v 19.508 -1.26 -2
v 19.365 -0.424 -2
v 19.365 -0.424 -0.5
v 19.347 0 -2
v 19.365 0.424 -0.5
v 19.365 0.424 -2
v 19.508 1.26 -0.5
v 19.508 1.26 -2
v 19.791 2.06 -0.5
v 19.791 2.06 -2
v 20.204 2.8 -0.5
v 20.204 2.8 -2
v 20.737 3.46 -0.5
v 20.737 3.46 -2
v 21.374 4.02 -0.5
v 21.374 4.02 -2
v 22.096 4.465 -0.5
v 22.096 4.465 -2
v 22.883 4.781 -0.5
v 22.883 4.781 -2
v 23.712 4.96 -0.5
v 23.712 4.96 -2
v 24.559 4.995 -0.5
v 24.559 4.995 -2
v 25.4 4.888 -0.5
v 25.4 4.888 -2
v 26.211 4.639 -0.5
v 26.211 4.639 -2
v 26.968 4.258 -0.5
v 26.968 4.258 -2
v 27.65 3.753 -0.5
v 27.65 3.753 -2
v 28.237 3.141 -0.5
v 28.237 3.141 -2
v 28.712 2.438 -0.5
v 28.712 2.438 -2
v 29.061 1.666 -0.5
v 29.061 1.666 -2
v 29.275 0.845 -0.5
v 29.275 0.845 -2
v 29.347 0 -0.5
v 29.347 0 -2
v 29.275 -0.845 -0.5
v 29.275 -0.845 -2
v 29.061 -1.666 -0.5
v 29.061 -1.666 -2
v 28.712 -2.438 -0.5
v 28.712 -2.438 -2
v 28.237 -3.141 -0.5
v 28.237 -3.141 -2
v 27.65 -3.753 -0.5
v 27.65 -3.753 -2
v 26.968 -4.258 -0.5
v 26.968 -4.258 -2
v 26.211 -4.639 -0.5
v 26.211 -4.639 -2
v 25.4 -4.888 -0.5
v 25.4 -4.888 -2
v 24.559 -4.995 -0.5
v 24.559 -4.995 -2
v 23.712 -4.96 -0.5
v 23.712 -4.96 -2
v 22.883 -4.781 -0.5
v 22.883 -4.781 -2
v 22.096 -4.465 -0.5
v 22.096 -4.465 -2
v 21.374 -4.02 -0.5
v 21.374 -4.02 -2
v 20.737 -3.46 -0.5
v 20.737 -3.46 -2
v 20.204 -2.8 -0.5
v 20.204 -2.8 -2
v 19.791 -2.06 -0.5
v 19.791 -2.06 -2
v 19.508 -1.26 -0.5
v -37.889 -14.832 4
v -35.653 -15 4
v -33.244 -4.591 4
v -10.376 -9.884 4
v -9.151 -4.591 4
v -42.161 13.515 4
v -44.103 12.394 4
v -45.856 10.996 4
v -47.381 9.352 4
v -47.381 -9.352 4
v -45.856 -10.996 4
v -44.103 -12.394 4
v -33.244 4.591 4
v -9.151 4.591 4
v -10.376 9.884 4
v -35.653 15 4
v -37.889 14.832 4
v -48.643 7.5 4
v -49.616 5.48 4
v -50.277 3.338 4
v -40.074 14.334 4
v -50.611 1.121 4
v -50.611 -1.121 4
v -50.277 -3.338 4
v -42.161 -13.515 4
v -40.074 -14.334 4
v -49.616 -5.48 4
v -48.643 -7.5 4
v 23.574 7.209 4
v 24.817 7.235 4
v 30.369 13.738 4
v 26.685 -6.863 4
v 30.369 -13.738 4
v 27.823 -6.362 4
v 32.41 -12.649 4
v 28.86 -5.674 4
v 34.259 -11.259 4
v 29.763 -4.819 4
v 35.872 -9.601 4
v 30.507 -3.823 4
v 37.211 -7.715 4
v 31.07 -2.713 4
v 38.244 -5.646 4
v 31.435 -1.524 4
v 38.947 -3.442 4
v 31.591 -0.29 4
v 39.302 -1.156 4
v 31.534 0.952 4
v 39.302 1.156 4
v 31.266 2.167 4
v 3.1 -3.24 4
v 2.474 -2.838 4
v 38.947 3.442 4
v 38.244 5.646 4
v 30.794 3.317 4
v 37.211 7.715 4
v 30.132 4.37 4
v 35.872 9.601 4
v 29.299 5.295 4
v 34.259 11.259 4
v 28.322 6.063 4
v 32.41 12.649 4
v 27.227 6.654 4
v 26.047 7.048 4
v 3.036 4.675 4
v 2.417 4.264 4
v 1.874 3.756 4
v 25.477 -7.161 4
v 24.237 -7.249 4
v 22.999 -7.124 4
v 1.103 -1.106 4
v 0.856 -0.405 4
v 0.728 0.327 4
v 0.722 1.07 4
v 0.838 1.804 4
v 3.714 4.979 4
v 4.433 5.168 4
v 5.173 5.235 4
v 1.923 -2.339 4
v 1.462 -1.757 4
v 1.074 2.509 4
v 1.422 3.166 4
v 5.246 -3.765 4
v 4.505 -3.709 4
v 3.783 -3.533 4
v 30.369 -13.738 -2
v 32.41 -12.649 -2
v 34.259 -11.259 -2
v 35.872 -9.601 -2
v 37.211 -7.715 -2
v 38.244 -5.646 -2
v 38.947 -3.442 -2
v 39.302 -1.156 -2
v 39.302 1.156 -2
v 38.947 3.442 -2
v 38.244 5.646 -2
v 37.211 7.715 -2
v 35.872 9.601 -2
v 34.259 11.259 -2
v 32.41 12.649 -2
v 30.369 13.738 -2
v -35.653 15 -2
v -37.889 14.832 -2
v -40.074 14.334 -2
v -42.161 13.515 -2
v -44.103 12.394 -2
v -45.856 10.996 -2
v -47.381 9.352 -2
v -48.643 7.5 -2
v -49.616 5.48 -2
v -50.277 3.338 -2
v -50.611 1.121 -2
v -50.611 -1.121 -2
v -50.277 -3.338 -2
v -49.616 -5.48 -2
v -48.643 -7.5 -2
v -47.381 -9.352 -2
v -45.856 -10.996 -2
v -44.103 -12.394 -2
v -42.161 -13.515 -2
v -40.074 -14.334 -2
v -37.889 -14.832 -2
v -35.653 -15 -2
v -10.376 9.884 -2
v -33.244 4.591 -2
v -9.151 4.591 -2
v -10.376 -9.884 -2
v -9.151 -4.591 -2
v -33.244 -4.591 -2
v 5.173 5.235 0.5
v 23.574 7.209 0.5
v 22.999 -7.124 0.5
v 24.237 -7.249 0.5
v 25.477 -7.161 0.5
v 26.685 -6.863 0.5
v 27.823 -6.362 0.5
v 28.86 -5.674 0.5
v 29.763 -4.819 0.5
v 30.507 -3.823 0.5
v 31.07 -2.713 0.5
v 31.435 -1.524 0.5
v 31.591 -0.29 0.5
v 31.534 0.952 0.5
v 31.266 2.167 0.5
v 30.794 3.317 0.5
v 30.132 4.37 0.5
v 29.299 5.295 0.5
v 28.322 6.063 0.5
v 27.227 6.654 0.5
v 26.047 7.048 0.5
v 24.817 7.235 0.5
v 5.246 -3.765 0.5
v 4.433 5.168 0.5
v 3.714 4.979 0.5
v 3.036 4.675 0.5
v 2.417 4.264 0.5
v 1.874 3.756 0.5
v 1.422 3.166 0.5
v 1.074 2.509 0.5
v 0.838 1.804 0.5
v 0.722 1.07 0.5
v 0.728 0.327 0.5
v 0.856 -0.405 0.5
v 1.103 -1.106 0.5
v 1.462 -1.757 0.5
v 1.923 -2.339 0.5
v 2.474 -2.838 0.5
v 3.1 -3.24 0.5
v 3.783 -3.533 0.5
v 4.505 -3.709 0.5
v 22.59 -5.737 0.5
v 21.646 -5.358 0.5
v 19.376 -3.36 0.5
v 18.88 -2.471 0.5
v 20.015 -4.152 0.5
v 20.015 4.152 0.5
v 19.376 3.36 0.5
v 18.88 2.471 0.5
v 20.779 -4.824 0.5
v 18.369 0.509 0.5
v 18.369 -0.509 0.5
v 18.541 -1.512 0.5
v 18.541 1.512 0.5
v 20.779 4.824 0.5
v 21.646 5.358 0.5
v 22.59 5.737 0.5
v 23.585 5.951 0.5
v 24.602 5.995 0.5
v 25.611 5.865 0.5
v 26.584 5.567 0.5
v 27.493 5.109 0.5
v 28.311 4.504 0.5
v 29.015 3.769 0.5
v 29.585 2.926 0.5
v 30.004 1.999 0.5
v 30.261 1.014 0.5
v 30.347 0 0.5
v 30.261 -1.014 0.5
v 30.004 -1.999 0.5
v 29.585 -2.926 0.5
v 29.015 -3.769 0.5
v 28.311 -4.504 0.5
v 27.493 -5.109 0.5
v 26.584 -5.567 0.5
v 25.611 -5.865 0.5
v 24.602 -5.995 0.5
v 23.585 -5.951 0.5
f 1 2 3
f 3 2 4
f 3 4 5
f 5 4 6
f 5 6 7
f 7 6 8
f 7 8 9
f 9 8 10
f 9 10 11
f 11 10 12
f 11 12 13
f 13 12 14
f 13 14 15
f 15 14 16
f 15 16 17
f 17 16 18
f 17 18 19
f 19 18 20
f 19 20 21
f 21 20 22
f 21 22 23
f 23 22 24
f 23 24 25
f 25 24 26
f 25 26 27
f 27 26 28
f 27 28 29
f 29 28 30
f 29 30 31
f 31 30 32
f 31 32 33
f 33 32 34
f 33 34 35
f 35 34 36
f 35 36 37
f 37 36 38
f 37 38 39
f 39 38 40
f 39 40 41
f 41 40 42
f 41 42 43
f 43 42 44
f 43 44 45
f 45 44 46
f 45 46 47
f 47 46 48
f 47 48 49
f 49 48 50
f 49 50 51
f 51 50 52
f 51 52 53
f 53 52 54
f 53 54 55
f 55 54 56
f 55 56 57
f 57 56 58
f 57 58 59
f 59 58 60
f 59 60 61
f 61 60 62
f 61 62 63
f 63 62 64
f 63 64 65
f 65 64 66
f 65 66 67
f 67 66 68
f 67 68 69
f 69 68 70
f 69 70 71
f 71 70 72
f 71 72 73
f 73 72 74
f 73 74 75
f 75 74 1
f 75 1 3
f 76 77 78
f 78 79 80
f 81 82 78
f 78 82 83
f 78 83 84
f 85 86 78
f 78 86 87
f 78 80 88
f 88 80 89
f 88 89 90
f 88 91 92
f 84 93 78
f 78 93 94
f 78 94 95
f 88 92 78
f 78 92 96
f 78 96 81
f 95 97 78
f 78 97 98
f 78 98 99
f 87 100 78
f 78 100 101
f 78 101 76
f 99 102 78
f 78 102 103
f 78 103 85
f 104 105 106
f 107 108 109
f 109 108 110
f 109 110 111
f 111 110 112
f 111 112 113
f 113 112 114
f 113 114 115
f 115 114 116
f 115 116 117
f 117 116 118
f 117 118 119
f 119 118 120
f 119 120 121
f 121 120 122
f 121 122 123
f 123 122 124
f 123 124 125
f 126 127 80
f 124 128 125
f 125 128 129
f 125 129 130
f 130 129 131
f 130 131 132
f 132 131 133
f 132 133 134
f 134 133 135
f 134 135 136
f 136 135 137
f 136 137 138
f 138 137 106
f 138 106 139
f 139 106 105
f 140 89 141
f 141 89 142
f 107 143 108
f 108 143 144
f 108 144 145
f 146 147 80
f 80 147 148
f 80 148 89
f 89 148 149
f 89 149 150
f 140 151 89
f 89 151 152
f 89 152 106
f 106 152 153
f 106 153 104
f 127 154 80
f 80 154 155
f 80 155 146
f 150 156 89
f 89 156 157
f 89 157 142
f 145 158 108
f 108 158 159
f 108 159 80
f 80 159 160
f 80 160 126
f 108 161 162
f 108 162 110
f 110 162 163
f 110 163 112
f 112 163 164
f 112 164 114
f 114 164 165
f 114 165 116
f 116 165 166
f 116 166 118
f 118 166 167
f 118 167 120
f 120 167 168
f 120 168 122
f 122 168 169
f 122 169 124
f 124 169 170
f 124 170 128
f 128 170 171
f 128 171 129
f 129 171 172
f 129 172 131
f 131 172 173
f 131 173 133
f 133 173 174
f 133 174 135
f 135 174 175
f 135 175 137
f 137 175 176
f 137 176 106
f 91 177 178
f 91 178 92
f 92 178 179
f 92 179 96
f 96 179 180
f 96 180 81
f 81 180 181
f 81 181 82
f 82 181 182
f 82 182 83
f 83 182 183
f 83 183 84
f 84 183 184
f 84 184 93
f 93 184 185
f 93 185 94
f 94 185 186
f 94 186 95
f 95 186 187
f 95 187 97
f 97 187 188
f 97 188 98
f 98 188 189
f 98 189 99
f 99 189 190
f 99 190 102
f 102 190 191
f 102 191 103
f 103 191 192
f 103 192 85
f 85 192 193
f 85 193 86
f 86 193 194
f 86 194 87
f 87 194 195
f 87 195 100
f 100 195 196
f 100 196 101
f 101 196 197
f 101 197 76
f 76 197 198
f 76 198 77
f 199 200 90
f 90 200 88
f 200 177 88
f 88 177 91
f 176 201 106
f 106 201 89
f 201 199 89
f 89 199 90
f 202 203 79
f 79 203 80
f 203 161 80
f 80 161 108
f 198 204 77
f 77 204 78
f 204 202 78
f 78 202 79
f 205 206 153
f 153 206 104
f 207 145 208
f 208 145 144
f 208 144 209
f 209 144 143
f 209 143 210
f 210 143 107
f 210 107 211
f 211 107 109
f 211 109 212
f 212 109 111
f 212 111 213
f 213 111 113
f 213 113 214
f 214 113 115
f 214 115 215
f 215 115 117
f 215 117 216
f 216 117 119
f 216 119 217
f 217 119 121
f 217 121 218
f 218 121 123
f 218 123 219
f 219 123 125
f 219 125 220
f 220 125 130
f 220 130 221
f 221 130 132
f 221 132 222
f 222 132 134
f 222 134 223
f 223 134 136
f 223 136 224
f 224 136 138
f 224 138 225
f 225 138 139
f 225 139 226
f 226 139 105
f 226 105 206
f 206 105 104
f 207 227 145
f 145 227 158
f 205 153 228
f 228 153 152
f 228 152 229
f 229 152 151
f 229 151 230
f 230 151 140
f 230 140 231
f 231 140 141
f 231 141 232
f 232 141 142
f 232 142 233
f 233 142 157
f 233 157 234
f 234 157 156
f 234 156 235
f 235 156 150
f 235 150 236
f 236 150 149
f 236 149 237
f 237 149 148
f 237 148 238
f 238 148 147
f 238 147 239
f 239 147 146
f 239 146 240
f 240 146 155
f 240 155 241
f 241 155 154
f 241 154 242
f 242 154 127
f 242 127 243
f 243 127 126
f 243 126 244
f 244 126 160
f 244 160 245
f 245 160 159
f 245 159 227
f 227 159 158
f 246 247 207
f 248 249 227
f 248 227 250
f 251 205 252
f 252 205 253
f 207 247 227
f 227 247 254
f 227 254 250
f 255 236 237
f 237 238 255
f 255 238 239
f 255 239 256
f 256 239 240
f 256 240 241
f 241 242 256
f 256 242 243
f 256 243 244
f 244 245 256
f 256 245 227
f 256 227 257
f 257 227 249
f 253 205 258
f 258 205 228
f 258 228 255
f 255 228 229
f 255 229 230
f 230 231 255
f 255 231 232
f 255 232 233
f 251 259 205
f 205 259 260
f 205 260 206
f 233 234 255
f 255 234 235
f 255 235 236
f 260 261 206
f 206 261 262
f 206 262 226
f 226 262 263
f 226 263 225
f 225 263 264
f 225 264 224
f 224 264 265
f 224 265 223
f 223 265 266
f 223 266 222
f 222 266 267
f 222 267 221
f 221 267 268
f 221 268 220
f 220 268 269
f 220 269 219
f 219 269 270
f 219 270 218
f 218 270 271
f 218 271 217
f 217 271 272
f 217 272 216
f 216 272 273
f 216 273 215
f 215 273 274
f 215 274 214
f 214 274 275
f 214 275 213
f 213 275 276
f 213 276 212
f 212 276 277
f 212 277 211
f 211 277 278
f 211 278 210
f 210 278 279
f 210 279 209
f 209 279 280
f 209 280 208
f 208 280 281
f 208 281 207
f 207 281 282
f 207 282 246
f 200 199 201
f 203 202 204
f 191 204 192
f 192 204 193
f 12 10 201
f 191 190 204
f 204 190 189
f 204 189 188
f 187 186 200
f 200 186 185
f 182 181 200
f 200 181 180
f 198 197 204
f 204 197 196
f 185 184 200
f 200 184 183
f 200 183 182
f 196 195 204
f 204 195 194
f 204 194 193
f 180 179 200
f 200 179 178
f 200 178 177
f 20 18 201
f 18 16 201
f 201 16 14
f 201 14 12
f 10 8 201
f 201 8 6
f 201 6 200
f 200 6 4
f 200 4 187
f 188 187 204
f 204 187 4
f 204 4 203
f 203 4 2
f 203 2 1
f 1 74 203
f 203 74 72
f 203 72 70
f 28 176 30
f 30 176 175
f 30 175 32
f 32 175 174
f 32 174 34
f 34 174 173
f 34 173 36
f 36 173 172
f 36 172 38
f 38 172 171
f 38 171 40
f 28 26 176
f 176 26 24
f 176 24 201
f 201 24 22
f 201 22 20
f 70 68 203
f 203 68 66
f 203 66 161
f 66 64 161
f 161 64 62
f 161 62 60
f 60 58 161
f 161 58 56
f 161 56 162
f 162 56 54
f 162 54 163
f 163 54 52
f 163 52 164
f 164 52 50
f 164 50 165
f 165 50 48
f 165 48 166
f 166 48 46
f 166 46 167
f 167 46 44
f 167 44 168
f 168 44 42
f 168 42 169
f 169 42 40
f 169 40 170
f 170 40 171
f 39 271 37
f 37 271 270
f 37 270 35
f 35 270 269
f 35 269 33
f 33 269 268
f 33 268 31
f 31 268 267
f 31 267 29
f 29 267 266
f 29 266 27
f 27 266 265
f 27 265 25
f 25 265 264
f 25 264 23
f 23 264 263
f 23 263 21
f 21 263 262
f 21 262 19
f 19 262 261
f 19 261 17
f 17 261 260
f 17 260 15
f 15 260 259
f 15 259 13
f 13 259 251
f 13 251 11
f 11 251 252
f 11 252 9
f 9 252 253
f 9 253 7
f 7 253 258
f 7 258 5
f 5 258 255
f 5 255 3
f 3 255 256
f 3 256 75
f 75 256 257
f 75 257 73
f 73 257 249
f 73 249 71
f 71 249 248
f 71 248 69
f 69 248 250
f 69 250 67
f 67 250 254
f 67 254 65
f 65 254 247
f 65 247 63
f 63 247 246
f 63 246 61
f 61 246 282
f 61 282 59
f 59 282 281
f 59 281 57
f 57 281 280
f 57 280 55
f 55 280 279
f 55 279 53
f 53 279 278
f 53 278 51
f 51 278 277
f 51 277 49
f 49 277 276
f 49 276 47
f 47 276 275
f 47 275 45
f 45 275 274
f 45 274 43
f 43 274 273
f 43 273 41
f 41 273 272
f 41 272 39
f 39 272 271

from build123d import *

# Parameters (mm, degrees)
Y_KSEKLIK_EKSTR_ZYON1_DEPTH = 4
KES_EKSTR_ZYON1_START       = -4
KES_EKSTR_ZYON1_DEPTH       = 4
IZIM3_R                     = 5
KES_EKSTR_ZYON2_DEPTH       = 4
KES_EKSTR_ZYON3_DEPTH       = 4
IZIM10_R                    = 7.25
IZIM10_R_2                  = 5
KES_EKSTR_ZYON4_DEPTH       = 3.5
IZIM11_R                    = 5
Y_KSEKLIK_EKSTR_ZYON3_DEPTH = 2
PAH2_SIZE                   = 1


with BuildPart() as part:
    # Çizim1 → Yükseklik-Ekstrüzyon1 (new body)
    with BuildSketch(Plane.XY):
        with BuildLine():
            Line((-35.653037037, 15), (24.346962963, 15))
            ThreePointArc((24.346962963, 15), (39.346962963, 0), (24.346962963, -15))
            Line((24.346962963, -15), (-35.653037037, -15))
            ThreePointArc((-35.653037037, -15), (-50.653037037, 0), (-35.653037037, 15))
        make_face()
    extrude(amount=Y_KSEKLIK_EKSTR_ZYON1_DEPTH)

    # Çizim2 → Kes-Ekstrüzyon1 (cut)
    with BuildSketch(Plane.XY.offset(4).offset(KES_EKSTR_ZYON1_START)):
        Polygon((-11.560212186, 15), (-35.653037037, 15), (-33.243754552, 4.590717515), (-10.375990279, 9.883580305), align=None)
        Polygon((-33.243754552, -4.590717515), (-35.653037037, -15), (-11.560212186, -15), (-10.375990279, -9.883580305), align=None)
        with BuildLine():
            Line((-10.375990279, 9.883580305), (-9.150929701, 4.590717515))
            Line((-9.150929701, 4.590717515), (30.369414779, 13.737906468))
            ThreePointArc((30.369414779, 13.737906468), (27.42360098, 14.681086421), (24.346962963, 15))
            Line((24.346962963, 15), (11.729453249, 15))
            Line((11.729453249, 15), (-10.375990279, 9.883580305))
        make_face()
        with BuildLine():
            Line((-9.150929701, -4.590717515), (-10.375990279, -9.883580305))
            Line((-10.375990279, -9.883580305), (11.729453249, -15))
            Line((11.729453249, -15), (24.346962963, -15))
            ThreePointArc((24.346962963, -15), (27.42360098, -14.681086421), (30.369414779, -13.737906468))
            Line((30.369414779, -13.737906468), (-9.150929701, -4.590717515))
        make_face()
    extrude(amount=KES_EKSTR_ZYON1_DEPTH, mode=Mode.SUBTRACT)


with BuildPart() as kes_ekstr_zyon1_piece_1:
    # of the separate pieces the step leaves, piece 1, a body of its own (kes_ekstr_zyon1_pieces)
    add(part.part.solids().sort_by_distance((-35.653037037, -15, 0))[0])

    # Çizim3 → Kes-Ekstrüzyon2 (cut)
    with BuildSketch(Plane.XY.offset(4)):
        with Locations((24.346962963, 0)):
            Circle(IZIM3_R)
    extrude(amount=-KES_EKSTR_ZYON2_DEPTH, mode=Mode.SUBTRACT)

    # Çizim10 → Kes-Ekstrüzyon4 (cut)
    # profile 1 of 2: a face of its own
    with BuildSketch(Plane.XY.offset(4)):
        with BuildLine():
            ThreePointArc((22.99921211, -7.123627421), (17.102780918, 0.290390243), (23.573735665, 7.20864894))
            Line((23.573735665, 7.20864894), (5.173034472, 5.234919246))
            ThreePointArc((5.173034472, 5.234919246), (0.709580704, 0.698667438), (5.245832511, -3.76478633))
            Line((5.245832511, -3.76478633), (22.99921211, -7.123627421))
        make_face()
    # profile 2 of 2: a face of its own
    with BuildSketch(Plane.XY.offset(4)):
        with Locations((24.346962963, 0)):
            Circle(IZIM10_R)
        with Locations((24.346962963, 0)):
            Circle(IZIM10_R_2, mode=Mode.SUBTRACT)
    extrude(amount=-KES_EKSTR_ZYON4_DEPTH, mode=Mode.SUBTRACT)

    # Çizim11 → Yükseklik-Ekstrüzyon3 (add)
    with BuildSketch(Plane(origin=(0, 0, 0), x_dir=(-1, 0, 0), z_dir=(0, 0, -1))):
        with BuildLine():
            Line((33.243754552, -4.590717515), (35.653037037, -15))
            ThreePointArc((35.653037037, -15), (50.653037037, 0), (35.653037037, 15))
            Line((35.653037037, 15), (33.243754552, 4.590717515))
            Line((33.243754552, 4.590717515), (10.375990279, 9.883580305))
            Line((10.375990279, 9.883580305), (9.150929701, 4.590717515))
            Line((9.150929701, 4.590717515), (-30.369414779, 13.737906468))
            ThreePointArc((-30.369414779, 13.737906468), (-39.346962963, 0), (-30.369414779, -13.737906468))
            Line((-30.369414779, -13.737906468), (9.150929701, -4.590717515))
            Line((9.150929701, -4.590717515), (10.375990279, -9.883580305))
            Line((10.375990279, -9.883580305), (33.243754552, -4.590717515))
        make_face()
        with Locations(Location((-24.346962963, 0, 0), (0, 0, 180))):
            Circle(IZIM11_R, mode=Mode.SUBTRACT)
    extrude(amount=Y_KSEKLIK_EKSTR_ZYON3_DEPTH)

    # Pah2
    pah2_edges = [kes_ekstr_zyon1_piece_1.edges().sort_by_distance(p)[0] for p in [
        (19.346962963, 0, 0.5),
    ]]
    chamfer(pah2_edges, length=PAH2_SIZE)


with BuildPart() as kes_ekstr_zyon1_piece_2:
    # of the separate pieces the step leaves, piece 2, a body of its own (kes_ekstr_zyon1_pieces)
    add(part.part.solids().sort_by_distance((-11.560212186, 15, 0))[0])


with BuildPart() as kes_ekstr_zyon1_piece_3:
    # of the separate pieces the step leaves, piece 3, a body of its own (kes_ekstr_zyon1_pieces)
    add(part.part.solids().sort_by_distance((11.729453249, -15, 0))[0])


with BuildPart() as kes_ekstr_zyon3_tool:
    # Çizim5 → Kes-Ekstrüzyon3 (new body)
    with BuildSketch(Plane.XY.offset(4)):
        Polygon((-10.375990279, -9.883580305), (-11.560212186, -15), (11.729453249, -15), align=None)
        Polygon((-11.560212186, 15), (-10.375990279, 9.883580305), (11.729453249, 15), align=None)
    extrude(amount=-KES_EKSTR_ZYON3_DEPTH)


with BuildPart() as kes_ekstr_zyon1_piece_2_1:
    add(kes_ekstr_zyon1_piece_2.part)

    # Kes-Ekstrüzyon3: cut by kes_ekstr_zyon3_tool
    add(kes_ekstr_zyon3_tool.part, mode=Mode.SUBTRACT)


with BuildPart() as kes_ekstr_zyon1_piece_3_1:
    add(kes_ekstr_zyon1_piece_3.part)

    # Kes-Ekstrüzyon3: cut by kes_ekstr_zyon3_tool
    add(kes_ekstr_zyon3_tool.part, mode=Mode.SUBTRACT)


solid = kes_ekstr_zyon1_piece_1.part
